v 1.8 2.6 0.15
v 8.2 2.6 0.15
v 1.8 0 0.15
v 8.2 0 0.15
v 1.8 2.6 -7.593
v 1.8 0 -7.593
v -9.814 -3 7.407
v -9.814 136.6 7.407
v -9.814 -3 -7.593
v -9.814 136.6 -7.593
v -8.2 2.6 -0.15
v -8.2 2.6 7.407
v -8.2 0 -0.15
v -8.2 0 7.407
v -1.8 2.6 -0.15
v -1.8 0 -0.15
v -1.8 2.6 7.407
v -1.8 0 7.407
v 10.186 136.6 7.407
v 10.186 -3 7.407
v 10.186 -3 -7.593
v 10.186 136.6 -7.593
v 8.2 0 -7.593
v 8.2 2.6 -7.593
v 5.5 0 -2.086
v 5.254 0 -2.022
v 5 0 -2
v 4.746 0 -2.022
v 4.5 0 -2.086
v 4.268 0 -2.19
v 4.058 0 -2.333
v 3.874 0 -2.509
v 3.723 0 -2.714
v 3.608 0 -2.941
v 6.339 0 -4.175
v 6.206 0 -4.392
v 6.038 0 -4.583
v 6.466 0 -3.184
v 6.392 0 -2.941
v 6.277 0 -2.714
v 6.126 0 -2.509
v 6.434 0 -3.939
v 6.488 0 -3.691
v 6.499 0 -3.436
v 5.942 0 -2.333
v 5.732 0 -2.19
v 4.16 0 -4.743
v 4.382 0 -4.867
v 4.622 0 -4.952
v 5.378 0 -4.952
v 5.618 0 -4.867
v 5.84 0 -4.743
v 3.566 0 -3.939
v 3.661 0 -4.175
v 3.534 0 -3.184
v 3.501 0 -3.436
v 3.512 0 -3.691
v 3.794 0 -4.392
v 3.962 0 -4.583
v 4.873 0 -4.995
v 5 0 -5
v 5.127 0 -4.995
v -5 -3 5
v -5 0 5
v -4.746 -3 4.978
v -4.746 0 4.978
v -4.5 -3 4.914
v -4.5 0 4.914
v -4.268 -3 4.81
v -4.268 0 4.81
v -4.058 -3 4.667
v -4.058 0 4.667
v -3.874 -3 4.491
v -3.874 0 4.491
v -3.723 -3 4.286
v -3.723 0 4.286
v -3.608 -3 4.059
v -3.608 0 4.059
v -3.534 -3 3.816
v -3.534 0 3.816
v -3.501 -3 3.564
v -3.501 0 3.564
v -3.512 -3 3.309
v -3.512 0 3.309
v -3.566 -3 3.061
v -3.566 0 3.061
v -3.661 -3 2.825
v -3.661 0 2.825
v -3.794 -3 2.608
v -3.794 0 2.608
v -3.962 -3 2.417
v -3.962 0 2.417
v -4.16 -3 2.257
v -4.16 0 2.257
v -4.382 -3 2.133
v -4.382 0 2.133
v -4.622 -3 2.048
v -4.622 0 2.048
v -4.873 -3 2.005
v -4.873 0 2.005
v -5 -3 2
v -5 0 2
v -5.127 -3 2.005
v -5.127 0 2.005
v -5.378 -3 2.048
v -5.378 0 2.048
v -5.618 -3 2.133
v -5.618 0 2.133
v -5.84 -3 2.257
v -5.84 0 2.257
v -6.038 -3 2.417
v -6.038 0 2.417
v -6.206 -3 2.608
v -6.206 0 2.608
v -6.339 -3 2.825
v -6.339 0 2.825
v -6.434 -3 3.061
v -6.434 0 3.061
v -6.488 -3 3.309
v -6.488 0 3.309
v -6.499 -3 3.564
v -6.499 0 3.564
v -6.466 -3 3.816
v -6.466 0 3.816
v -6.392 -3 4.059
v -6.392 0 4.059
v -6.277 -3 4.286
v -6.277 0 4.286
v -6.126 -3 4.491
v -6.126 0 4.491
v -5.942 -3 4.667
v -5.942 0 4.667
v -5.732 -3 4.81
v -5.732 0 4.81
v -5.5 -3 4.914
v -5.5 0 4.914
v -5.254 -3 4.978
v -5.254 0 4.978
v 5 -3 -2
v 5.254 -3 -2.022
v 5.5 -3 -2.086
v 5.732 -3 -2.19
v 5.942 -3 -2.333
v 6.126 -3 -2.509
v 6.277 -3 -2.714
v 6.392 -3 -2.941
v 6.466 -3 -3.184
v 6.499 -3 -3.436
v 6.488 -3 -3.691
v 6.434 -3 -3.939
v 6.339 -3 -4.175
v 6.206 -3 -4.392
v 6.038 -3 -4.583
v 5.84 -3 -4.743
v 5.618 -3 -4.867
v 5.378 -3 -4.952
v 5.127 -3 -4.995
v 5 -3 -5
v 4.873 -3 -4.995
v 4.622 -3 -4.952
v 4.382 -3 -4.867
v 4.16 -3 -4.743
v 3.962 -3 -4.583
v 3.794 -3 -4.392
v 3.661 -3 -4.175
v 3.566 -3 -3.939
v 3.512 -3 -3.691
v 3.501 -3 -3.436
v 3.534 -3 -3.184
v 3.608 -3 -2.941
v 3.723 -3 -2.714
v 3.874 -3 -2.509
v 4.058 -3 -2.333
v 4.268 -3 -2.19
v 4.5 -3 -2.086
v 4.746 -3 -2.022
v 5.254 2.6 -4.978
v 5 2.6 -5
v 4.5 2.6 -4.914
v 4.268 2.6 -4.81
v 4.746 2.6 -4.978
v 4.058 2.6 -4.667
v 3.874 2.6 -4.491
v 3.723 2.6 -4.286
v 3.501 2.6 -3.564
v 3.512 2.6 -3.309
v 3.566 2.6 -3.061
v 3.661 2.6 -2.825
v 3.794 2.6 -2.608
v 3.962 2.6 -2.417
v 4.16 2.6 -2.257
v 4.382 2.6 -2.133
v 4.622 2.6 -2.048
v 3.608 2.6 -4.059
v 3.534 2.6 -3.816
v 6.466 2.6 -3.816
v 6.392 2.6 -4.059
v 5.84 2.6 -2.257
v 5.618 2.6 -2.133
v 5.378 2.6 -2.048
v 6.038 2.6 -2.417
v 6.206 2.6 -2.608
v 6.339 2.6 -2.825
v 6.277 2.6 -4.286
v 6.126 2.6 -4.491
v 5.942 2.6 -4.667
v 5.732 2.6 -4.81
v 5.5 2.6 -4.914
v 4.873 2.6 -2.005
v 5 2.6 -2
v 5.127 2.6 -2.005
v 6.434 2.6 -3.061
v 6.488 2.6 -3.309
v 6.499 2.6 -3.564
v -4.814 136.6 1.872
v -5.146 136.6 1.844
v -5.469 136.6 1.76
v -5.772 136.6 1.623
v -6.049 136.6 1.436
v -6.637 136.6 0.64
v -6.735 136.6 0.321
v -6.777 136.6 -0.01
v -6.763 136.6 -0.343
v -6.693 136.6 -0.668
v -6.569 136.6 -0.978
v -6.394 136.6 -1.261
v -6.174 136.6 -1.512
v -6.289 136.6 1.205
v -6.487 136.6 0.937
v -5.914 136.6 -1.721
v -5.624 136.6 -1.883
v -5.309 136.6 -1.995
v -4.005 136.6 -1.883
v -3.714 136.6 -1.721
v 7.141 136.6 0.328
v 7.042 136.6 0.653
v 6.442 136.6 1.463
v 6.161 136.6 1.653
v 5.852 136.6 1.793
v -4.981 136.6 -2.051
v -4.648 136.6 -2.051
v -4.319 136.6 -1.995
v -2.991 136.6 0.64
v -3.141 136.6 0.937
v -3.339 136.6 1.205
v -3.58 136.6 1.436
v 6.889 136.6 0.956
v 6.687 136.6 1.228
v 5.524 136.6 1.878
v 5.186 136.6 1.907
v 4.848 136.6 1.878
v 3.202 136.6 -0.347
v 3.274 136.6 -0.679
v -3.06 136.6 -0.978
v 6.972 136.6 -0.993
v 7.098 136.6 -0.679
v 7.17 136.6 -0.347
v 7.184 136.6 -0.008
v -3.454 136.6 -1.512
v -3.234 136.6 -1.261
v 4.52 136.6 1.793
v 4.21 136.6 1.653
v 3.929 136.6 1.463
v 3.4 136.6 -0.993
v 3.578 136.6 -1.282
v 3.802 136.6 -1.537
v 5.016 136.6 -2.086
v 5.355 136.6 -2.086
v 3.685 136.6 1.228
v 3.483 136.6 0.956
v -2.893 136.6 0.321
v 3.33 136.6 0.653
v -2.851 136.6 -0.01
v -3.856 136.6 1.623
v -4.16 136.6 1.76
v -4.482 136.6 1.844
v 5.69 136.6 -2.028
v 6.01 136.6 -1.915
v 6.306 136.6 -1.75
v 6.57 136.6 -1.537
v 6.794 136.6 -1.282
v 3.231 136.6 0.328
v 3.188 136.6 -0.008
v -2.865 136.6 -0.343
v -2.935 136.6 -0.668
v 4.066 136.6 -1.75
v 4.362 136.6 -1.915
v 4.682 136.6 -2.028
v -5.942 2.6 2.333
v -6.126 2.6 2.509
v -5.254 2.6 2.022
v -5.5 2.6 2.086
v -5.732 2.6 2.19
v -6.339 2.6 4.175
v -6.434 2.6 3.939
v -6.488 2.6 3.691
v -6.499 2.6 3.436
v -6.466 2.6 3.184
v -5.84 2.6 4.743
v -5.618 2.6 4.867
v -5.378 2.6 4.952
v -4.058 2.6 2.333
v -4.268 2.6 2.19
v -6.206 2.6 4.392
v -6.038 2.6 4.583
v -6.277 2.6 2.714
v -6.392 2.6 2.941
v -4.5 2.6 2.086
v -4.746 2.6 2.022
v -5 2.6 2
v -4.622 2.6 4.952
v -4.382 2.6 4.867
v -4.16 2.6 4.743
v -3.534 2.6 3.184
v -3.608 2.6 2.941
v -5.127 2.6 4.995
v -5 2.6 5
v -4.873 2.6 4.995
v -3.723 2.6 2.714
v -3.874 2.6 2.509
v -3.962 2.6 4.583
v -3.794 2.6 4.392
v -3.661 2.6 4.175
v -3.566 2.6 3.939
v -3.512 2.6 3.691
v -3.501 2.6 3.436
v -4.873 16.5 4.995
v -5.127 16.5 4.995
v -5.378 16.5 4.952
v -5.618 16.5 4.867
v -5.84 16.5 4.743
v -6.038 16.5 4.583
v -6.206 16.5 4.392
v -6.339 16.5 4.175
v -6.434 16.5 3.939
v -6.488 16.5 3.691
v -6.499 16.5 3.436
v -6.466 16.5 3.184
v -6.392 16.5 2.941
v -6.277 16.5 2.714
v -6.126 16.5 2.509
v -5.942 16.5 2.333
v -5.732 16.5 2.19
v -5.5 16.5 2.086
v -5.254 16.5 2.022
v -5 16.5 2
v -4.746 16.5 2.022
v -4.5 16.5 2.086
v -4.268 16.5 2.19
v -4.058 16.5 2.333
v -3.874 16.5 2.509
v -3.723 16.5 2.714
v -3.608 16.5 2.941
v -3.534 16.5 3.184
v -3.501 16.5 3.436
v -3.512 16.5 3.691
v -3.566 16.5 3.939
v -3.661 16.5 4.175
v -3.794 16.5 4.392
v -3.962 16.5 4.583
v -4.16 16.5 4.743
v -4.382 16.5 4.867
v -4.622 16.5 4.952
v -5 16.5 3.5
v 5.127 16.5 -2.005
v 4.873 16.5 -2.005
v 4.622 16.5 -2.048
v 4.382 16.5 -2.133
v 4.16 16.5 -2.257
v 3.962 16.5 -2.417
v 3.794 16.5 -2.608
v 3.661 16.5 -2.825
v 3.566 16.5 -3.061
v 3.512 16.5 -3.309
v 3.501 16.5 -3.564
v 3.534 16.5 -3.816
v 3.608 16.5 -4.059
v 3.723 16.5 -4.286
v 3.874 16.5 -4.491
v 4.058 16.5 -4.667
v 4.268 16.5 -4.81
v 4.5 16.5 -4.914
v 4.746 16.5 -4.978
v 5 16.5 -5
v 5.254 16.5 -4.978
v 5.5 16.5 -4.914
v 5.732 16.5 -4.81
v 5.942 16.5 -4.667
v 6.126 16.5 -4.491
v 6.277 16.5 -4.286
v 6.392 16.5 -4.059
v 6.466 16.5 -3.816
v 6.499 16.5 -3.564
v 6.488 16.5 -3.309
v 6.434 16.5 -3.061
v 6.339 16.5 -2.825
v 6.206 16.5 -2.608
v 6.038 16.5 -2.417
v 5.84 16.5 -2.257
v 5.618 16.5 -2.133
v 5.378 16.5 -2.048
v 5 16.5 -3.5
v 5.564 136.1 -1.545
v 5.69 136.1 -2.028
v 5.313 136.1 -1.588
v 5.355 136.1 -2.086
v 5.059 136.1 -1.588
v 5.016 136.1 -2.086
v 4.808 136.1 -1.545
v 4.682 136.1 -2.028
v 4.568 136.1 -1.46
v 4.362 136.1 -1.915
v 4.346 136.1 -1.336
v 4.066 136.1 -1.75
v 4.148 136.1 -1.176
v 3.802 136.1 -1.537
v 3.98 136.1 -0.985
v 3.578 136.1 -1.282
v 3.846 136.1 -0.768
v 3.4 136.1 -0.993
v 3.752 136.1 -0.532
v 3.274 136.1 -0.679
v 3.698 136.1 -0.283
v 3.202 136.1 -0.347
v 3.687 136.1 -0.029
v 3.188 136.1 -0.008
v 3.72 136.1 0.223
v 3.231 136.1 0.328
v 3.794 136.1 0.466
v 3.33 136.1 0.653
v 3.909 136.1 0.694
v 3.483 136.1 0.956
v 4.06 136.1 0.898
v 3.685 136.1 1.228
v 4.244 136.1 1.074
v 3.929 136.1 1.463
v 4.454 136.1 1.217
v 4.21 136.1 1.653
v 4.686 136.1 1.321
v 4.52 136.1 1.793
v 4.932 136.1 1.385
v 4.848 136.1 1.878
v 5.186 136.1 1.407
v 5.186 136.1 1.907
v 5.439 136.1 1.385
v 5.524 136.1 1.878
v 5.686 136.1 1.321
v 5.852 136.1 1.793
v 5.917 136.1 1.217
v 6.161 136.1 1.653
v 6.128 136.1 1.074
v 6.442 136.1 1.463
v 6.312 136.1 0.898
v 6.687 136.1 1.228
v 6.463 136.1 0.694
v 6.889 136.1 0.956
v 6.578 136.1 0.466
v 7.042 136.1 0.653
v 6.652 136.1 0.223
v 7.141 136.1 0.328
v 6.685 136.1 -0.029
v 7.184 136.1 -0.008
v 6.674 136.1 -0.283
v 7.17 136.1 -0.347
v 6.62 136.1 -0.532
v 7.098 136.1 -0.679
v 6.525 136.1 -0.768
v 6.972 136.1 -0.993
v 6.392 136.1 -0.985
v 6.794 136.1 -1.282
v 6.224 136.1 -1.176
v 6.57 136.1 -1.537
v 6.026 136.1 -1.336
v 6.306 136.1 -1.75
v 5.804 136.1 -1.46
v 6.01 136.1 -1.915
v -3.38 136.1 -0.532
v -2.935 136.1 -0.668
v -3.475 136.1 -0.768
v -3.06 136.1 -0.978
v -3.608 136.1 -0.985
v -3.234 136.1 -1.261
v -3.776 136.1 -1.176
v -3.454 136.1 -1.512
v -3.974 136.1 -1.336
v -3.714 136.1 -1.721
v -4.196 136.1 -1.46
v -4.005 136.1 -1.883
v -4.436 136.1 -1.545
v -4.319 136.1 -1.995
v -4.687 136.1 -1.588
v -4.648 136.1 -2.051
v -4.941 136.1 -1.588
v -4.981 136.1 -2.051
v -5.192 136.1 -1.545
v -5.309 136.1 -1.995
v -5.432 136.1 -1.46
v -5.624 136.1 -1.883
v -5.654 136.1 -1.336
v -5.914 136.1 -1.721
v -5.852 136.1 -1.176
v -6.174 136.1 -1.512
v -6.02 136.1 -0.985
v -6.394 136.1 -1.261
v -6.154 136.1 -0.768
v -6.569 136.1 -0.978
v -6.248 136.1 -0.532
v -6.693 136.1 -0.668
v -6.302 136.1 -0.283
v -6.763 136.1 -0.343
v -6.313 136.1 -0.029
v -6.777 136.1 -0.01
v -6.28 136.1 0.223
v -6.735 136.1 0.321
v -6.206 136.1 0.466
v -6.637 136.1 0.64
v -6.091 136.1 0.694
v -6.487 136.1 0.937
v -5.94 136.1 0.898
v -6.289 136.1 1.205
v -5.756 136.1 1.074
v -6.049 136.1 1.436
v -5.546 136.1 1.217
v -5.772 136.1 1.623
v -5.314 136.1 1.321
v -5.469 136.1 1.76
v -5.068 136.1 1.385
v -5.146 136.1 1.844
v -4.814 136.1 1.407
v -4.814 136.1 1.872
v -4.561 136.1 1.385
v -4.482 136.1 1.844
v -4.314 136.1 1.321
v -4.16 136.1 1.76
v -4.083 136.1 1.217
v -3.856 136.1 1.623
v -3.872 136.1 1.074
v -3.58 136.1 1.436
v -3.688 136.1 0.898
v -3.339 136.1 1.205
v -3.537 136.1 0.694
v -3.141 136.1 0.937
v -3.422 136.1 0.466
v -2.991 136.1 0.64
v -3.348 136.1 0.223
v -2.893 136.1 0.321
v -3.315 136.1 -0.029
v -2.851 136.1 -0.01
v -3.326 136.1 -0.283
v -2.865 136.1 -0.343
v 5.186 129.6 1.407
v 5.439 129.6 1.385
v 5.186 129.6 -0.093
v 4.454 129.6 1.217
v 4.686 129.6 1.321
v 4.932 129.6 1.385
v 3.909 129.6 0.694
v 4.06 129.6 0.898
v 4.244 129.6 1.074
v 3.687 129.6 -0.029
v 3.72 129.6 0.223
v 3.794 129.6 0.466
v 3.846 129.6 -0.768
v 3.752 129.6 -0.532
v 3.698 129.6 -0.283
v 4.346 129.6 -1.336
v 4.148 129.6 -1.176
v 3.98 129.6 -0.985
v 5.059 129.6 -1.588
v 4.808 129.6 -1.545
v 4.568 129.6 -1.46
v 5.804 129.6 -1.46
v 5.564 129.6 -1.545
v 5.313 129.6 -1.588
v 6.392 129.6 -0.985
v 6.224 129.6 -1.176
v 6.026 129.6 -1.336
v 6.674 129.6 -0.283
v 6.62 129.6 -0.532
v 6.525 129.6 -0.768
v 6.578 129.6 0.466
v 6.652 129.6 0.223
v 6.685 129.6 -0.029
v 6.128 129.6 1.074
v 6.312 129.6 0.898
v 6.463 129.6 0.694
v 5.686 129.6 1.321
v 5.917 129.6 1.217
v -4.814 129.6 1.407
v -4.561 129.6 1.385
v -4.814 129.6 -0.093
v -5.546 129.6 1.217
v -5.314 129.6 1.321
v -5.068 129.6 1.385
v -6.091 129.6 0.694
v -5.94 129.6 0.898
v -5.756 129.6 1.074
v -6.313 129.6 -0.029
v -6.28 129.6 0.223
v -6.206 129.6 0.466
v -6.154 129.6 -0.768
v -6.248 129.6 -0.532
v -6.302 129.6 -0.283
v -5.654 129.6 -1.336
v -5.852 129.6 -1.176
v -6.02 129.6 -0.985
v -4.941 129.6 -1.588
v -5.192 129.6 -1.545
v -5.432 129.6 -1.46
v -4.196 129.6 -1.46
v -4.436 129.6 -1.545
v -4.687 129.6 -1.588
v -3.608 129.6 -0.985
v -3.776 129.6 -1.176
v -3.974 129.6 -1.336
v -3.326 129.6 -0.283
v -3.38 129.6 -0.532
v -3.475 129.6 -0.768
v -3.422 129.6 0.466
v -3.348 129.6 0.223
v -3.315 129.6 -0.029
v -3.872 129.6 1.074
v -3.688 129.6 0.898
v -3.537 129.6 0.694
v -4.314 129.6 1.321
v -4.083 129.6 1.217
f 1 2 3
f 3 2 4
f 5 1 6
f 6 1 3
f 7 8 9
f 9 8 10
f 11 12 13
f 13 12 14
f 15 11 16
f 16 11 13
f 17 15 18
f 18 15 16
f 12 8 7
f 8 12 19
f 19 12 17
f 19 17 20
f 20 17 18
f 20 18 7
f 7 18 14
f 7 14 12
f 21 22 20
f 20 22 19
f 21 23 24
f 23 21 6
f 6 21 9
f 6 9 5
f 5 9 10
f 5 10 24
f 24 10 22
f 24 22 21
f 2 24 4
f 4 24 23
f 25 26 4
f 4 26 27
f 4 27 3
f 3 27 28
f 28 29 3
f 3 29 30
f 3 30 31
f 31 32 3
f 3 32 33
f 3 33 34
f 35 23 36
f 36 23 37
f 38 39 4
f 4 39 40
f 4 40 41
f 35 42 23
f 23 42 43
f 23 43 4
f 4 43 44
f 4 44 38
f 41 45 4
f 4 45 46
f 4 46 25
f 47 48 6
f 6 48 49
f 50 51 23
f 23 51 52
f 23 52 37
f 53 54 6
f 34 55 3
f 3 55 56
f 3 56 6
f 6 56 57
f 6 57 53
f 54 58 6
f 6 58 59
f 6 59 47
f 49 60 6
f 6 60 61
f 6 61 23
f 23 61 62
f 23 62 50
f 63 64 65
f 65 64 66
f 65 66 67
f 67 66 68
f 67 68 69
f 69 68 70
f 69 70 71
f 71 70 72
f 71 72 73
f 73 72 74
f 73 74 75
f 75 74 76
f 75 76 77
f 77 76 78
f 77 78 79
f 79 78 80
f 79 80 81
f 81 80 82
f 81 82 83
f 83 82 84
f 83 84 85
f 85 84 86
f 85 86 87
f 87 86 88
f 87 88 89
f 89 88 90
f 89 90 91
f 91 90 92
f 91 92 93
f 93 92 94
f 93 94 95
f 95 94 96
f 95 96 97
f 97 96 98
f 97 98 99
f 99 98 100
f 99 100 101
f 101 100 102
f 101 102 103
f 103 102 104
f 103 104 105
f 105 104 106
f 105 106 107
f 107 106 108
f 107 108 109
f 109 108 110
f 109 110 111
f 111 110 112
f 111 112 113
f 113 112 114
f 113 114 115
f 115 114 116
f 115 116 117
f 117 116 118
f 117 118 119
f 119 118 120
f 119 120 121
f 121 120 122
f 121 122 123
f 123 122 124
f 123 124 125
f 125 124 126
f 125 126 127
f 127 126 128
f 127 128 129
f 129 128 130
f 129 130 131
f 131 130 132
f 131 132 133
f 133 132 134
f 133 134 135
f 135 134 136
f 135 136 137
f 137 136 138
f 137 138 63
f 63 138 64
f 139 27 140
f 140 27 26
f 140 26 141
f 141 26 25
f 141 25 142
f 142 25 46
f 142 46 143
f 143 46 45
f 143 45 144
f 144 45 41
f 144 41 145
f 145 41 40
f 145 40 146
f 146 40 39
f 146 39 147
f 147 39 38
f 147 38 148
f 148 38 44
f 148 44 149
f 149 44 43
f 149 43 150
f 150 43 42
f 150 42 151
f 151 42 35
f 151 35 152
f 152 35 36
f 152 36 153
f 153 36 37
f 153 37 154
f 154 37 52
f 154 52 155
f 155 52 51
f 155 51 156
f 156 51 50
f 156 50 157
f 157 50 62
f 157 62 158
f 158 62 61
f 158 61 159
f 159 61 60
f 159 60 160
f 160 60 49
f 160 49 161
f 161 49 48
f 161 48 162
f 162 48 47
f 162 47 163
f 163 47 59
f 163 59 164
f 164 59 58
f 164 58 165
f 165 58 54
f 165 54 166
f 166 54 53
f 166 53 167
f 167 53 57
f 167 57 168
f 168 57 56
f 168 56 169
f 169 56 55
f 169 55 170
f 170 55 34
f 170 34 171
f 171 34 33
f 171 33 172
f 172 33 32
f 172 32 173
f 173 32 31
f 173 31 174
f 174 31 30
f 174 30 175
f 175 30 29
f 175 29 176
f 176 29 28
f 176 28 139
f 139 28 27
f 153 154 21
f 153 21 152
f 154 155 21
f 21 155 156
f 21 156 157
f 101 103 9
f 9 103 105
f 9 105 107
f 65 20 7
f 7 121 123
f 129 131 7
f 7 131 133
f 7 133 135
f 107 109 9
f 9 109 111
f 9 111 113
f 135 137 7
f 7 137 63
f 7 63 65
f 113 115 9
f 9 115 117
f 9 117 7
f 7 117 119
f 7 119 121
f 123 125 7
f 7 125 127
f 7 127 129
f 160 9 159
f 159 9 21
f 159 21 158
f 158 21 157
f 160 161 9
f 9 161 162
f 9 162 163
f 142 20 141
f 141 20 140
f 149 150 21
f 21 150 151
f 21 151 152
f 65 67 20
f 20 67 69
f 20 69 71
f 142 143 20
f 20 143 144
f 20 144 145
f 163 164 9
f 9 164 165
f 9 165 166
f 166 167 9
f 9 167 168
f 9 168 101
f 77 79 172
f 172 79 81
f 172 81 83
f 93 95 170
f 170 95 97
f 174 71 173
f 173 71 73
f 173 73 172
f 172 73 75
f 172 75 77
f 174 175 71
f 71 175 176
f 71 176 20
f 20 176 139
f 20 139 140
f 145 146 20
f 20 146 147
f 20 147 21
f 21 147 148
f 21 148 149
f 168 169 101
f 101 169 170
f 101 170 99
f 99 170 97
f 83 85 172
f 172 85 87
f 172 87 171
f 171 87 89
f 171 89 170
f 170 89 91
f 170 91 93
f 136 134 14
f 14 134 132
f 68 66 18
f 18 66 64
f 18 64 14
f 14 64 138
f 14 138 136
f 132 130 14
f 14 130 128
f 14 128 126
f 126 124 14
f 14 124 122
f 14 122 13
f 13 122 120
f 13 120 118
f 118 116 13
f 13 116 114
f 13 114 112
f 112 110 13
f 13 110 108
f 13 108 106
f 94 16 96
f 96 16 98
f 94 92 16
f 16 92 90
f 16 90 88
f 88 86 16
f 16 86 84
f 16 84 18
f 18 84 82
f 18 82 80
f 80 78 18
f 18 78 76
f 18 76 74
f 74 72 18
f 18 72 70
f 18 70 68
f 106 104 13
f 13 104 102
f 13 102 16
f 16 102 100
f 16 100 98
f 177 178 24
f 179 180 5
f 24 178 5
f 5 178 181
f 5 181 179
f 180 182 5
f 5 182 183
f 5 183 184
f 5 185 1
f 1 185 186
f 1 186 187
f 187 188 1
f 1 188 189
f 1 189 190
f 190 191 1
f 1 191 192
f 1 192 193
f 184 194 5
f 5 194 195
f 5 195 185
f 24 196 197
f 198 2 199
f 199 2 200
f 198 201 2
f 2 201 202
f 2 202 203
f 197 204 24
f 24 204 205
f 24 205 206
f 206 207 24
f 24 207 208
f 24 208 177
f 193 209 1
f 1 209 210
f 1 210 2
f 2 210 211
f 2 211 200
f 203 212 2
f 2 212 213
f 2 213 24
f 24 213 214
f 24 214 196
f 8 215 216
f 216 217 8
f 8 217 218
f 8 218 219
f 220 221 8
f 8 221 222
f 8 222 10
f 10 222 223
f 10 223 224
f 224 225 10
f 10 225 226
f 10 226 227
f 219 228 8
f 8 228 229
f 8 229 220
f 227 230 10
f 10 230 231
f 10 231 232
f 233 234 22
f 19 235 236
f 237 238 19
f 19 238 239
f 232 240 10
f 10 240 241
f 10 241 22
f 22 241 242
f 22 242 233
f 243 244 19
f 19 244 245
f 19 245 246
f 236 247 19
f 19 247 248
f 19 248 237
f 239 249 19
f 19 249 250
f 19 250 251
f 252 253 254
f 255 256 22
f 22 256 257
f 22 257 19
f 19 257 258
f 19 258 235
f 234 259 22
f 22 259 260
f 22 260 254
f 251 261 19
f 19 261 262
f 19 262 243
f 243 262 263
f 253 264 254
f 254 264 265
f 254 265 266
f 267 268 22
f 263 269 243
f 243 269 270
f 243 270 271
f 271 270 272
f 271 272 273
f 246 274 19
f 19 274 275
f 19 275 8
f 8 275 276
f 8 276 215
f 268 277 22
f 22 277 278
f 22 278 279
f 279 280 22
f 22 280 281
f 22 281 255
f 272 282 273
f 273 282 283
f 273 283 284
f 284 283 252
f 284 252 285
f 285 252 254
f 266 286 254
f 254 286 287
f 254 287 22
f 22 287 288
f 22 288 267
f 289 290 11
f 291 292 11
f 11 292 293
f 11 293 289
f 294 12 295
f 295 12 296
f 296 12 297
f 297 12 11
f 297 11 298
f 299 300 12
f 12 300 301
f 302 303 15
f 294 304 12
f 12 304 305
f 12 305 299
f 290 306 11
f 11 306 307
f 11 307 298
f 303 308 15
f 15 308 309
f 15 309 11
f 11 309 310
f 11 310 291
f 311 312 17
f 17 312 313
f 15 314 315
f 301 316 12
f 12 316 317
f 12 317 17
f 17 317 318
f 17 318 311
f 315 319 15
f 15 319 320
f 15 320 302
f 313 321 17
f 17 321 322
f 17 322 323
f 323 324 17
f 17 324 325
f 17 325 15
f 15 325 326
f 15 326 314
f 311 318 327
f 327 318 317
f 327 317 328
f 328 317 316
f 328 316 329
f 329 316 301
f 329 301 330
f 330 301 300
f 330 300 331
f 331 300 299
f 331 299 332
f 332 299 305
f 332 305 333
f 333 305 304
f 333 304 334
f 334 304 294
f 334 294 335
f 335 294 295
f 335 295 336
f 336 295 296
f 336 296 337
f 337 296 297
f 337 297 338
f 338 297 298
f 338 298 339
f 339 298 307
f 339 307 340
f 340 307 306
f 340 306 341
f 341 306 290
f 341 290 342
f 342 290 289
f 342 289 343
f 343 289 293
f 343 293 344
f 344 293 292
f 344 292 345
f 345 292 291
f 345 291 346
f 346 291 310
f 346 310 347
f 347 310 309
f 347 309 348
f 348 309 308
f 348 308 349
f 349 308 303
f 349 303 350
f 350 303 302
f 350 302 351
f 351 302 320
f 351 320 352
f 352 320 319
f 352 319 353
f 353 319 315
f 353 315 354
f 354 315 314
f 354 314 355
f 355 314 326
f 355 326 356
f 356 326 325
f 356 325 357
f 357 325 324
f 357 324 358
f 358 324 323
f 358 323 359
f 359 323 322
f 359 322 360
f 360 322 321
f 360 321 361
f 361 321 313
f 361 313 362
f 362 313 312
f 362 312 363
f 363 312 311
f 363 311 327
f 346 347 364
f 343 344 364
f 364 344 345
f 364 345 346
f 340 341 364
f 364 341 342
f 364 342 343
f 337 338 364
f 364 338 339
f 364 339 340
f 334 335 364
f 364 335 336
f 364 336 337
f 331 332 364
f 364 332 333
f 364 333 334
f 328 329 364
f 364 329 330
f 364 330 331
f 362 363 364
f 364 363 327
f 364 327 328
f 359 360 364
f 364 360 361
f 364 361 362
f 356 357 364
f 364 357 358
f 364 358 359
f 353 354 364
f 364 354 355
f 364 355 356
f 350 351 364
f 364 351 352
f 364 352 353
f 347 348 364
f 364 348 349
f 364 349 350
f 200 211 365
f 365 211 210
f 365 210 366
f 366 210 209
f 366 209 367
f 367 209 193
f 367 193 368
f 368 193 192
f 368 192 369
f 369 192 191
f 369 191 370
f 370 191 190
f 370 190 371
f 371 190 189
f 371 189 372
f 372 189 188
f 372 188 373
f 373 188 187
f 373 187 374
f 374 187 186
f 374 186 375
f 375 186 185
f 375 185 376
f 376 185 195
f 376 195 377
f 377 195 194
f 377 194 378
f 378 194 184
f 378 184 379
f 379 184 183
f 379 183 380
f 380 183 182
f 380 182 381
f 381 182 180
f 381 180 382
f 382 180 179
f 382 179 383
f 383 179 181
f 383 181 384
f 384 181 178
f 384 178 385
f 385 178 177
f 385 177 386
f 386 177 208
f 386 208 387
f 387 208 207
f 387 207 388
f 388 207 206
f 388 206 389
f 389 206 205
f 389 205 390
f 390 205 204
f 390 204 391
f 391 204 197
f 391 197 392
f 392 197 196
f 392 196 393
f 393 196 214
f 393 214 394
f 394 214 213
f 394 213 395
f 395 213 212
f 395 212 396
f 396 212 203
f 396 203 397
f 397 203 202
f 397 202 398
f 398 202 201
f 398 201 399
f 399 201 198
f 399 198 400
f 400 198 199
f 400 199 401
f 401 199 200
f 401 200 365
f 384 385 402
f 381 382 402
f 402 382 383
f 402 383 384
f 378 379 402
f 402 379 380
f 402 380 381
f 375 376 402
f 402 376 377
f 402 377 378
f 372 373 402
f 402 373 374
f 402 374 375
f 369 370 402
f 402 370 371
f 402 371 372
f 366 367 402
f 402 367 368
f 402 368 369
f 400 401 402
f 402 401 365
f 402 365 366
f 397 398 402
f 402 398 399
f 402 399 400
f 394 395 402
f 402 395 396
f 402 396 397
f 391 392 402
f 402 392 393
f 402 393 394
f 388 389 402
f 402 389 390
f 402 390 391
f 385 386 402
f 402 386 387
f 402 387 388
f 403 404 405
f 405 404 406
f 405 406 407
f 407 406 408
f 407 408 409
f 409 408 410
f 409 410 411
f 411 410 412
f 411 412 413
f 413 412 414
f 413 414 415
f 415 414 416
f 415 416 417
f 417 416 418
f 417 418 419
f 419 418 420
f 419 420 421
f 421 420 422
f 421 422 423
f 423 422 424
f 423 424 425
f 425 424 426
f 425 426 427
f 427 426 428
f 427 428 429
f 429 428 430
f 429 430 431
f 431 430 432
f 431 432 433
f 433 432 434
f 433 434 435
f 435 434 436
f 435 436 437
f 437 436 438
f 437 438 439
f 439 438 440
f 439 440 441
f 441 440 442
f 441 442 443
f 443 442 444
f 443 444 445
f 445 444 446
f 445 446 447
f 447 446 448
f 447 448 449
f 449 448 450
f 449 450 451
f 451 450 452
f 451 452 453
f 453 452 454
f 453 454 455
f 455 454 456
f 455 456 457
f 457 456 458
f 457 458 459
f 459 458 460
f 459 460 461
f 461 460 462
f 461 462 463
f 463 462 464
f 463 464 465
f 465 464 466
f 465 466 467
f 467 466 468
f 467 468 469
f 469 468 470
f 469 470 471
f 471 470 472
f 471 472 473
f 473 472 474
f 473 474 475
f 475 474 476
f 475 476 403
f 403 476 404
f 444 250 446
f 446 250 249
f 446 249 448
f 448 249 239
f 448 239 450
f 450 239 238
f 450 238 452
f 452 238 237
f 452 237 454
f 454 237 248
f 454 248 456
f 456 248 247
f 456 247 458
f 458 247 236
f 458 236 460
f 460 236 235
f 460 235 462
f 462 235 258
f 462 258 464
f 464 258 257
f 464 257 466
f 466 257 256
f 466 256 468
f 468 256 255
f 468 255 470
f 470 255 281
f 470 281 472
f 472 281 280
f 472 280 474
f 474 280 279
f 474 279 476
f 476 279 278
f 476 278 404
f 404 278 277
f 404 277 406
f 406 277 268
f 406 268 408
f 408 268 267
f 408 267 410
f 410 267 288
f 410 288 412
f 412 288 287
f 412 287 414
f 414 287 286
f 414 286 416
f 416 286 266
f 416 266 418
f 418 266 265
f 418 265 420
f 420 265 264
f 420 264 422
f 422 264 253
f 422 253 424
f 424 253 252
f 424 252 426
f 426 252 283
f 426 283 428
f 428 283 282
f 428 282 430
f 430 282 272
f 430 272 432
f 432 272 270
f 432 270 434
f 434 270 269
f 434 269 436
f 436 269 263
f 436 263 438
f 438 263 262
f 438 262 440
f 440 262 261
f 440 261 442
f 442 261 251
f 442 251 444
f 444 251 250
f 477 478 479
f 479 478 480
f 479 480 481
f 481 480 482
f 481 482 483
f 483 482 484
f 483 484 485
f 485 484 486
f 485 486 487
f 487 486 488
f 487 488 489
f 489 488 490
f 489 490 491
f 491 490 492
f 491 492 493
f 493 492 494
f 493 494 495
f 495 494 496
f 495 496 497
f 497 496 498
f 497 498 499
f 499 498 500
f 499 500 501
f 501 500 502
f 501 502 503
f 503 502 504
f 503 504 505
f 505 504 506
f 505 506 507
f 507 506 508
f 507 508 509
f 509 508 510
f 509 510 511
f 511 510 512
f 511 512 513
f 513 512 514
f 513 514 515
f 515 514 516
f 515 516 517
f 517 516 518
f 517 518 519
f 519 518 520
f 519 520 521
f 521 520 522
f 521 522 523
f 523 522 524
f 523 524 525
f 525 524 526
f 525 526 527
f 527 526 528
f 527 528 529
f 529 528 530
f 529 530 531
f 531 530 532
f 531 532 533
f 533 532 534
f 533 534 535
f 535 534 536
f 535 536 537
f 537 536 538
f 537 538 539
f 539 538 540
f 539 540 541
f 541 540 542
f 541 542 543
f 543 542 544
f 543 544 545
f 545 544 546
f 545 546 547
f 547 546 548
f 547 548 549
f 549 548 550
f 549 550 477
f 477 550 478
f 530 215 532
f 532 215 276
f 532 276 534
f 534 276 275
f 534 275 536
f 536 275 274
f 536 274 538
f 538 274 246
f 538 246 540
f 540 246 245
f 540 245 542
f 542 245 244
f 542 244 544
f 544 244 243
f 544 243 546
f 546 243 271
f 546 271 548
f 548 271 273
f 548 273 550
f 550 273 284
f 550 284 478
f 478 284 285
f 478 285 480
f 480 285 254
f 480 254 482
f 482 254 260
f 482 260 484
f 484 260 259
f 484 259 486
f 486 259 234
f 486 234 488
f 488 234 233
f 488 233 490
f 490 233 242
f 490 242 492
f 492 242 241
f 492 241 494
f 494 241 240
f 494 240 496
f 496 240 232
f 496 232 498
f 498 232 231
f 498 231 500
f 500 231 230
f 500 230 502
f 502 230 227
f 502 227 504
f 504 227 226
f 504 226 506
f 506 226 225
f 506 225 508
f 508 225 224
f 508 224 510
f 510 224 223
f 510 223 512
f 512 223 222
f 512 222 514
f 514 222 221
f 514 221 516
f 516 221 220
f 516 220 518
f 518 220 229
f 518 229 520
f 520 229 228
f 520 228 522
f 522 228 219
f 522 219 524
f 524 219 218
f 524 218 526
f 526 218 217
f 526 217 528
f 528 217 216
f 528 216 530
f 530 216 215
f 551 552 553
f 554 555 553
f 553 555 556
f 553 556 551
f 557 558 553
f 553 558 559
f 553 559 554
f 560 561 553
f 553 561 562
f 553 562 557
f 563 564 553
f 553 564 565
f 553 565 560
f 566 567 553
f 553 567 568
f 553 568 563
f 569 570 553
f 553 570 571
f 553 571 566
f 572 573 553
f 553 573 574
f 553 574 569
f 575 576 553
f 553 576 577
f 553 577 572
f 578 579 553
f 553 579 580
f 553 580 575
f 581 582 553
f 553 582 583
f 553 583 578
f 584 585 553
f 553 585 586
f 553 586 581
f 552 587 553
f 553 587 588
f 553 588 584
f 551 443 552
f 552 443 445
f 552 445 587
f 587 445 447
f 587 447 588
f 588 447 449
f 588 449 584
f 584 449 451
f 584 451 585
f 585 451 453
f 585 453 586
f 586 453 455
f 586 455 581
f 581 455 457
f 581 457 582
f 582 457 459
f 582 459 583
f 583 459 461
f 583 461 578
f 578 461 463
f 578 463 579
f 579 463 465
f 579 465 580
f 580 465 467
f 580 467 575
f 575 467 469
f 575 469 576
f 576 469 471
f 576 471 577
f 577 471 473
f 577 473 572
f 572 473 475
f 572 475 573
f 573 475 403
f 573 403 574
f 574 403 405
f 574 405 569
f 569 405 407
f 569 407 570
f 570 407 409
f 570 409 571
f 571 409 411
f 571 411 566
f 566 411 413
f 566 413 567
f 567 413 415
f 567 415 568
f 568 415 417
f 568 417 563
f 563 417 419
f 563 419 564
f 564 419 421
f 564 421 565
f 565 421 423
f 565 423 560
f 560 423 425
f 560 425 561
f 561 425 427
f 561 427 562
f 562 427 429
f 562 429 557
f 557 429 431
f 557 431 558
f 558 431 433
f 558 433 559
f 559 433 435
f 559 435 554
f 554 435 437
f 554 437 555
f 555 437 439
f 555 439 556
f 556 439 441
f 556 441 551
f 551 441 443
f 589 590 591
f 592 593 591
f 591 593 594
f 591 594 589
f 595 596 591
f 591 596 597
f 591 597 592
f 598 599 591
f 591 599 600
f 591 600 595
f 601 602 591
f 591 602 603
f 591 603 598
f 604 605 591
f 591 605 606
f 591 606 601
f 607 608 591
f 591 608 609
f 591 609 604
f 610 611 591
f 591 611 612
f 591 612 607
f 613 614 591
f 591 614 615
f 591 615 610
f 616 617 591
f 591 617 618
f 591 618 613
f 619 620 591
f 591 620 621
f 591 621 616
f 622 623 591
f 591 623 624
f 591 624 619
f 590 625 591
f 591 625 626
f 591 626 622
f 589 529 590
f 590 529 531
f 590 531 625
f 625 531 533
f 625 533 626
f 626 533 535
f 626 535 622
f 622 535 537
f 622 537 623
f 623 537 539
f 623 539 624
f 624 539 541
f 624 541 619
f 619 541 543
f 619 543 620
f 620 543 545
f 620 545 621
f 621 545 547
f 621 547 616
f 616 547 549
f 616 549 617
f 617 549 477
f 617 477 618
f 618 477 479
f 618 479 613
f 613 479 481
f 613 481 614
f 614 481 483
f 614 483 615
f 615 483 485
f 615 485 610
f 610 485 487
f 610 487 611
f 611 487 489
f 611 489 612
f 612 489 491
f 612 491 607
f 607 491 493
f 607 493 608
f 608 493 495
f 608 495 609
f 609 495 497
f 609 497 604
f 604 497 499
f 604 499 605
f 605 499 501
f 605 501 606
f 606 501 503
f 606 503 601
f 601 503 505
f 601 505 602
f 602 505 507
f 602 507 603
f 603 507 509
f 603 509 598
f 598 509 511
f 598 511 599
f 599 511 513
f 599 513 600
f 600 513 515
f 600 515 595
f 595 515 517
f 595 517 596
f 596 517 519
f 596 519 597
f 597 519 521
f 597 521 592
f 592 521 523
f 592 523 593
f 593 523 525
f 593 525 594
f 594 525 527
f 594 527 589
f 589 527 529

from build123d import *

# Parameters (mm, degrees)
BOSS_EXTRUDE1_DEPTH = 2.6
SKETCH2_R           = 1.5
BOSS_EXTRUDE2_DEPTH = 3
SKETCH6_R           = 1.5
BOSS_EXTRUDE3_DEPTH = 134
SKETCH8_R           = 1.5
CUT_EXTRUDE1_DEPTH  = 19.5
SKETCH9_R           = 1.5
CUT_EXTRUDE2_DEPTH  = 7
SKETCH10_R          = 1.965
SKETCH10_R_2        = 2
CUT_EXTRUDE4_DEPTH  = 0.5


with BuildPart() as part:
    # Sketch1 → Boss-Extrude1 (new body)
    with BuildSketch(Plane(origin=(0, 0, 0), x_dir=(1, 0, 0), z_dir=(0, 1, 0))):
        Polygon((-8.2, -7.407073571), (-8.2, -3.5), (-8.2, 0.15), (-5, 0.15), (-1.8, 0.15), (-1.8, -3.5), (-1.8, -7.407073571), (10.185852857, -7.407073571), (10.185852857, 3.5), (10.185852857, 7.592926429), (8.2, 7.592926429), (8.2, 3.5), (8.2, -0.15), (5, -0.15), (1.8, -0.15), (1.8, 3.5), (1.8, 7.592926429), (-9.814147143, 7.592926429), (-9.814147143, -7.407073571), align=None)
    extrude(amount=BOSS_EXTRUDE1_DEPTH)

    # Sketch2 → Boss-Extrude2 (add)
    with BuildSketch(Plane.XZ):
        Polygon((-8.2, 7.407073571), (-9.814147143, 7.407073571), (-9.814147143, -7.592926429), (1.8, -7.592926429), (1.8, -3.5), (1.8, 0.15), (5, 0.15), (8.2, 0.15), (8.2, -3.5), (8.2, -7.592926429), (10.185852857, -7.592926429), (10.185852857, -3.5), (10.185852857, 7.407073571), (-1.8, 7.407073571), (-1.8, 3.5), (-1.8, -0.15), (-5, -0.15), (-8.2, -0.15), (-8.2, 3.5), align=None)
        Polygon((1.8, -3.5), (1.8, -7.592926429), (5.185852857, -7.592926429), (8.2, -7.592926429), (8.2, -3.5), (8.2, 0.15), (5, 0.15), (1.8, 0.15), align=None)
        with Locations((5, -3.5)):
            Circle(SKETCH2_R, mode=Mode.SUBTRACT)
        Polygon((-1.8, 7.407073571), (-8.2, 7.407073571), (-8.2, 3.5), (-8.2, -0.15), (-5, -0.15), (-1.8, -0.15), (-1.8, 3.5), align=None)
        with Locations((-5, 3.5)):
            Circle(SKETCH2_R, mode=Mode.SUBTRACT)
    extrude(amount=BOSS_EXTRUDE2_DEPTH)

    # Sketch6 → Boss-Extrude3 (add)
    with BuildSketch(Plane(origin=(0, 2.6, 0), x_dir=(1, 0, 0), z_dir=(0, 1, 0))):
        Polygon((-8.2, -3.5), (-8.2, -7.407073571), (-1.8, -7.407073571), (-1.8, -3.5), (-1.8, 0.15), (-5, 0.15), (-8.2, 0.15), align=None)
        with Locations((-5, -3.5)):
            Circle(SKETCH6_R, mode=Mode.SUBTRACT)
        Polygon((5.185852857, 7.592926429), (1.8, 7.592926429), (1.8, 3.5), (1.8, -0.15), (5, -0.15), (8.2, -0.15), (8.2, 3.5), (8.2, 7.592926429), align=None)
        with Locations((5, 3.5)):
            Circle(SKETCH6_R, mode=Mode.SUBTRACT)
        Polygon((1.8, 7.592926429), (-9.814147143, 7.592926429), (-9.814147143, -7.407073571), (-8.2, -7.407073571), (-8.2, -3.5), (-8.2, 0.15), (-5, 0.15), (-1.8, 0.15), (-1.8, -3.5), (-1.8, -7.407073571), (10.185852857, -7.407073571), (10.185852857, 3.5), (10.185852857, 7.592926429), (8.2, 7.592926429), (8.2, 3.5), (8.2, -0.15), (5, -0.15), (1.8, -0.15), (1.8, 3.5), align=None)
        with Locations((-5, -3.5)):
            Circle(SKETCH6_R)
        with Locations((5, 3.5)):
            Circle(SKETCH6_R)
    extrude(amount=BOSS_EXTRUDE3_DEPTH)

    # Sketch8 → Cut-Extrude1 (cut)
    with BuildSketch(Plane.XZ.offset(3)):
        with Locations((-5, 3.5)):
            Circle(SKETCH8_R)
        with Locations((5, -3.5)):
            Circle(SKETCH8_R)
    extrude(amount=-CUT_EXTRUDE1_DEPTH, mode=Mode.SUBTRACT)

    # Sketch9 → Cut-Extrude2 (cut)
    with BuildSketch(Plane(origin=(0, 136.6, 0), x_dir=(1, 0, 0), z_dir=(0, 1, 0))):
        with Locations((-4.814147143, 0.092926429)):
            Circle(SKETCH9_R)
        with Locations((5.185852857, 0.092926429)):
            Circle(SKETCH9_R)
    extrude(amount=-CUT_EXTRUDE2_DEPTH, mode=Mode.SUBTRACT)

    # Sketch10 → Cut-Extrude4 (cut)
    with BuildSketch(Plane(origin=(0, 136.6, 0), x_dir=(1, 0, 0), z_dir=(0, 1, 0))):
        with Locations((-4.814147143, 0.092926429)):
            Circle(SKETCH10_R)
        with Locations((5.185852857, 0.092926429)):
            Circle(SKETCH10_R_2)
    extrude(amount=-CUT_EXTRUDE4_DEPTH, mode=Mode.SUBTRACT)


solid = part.part
